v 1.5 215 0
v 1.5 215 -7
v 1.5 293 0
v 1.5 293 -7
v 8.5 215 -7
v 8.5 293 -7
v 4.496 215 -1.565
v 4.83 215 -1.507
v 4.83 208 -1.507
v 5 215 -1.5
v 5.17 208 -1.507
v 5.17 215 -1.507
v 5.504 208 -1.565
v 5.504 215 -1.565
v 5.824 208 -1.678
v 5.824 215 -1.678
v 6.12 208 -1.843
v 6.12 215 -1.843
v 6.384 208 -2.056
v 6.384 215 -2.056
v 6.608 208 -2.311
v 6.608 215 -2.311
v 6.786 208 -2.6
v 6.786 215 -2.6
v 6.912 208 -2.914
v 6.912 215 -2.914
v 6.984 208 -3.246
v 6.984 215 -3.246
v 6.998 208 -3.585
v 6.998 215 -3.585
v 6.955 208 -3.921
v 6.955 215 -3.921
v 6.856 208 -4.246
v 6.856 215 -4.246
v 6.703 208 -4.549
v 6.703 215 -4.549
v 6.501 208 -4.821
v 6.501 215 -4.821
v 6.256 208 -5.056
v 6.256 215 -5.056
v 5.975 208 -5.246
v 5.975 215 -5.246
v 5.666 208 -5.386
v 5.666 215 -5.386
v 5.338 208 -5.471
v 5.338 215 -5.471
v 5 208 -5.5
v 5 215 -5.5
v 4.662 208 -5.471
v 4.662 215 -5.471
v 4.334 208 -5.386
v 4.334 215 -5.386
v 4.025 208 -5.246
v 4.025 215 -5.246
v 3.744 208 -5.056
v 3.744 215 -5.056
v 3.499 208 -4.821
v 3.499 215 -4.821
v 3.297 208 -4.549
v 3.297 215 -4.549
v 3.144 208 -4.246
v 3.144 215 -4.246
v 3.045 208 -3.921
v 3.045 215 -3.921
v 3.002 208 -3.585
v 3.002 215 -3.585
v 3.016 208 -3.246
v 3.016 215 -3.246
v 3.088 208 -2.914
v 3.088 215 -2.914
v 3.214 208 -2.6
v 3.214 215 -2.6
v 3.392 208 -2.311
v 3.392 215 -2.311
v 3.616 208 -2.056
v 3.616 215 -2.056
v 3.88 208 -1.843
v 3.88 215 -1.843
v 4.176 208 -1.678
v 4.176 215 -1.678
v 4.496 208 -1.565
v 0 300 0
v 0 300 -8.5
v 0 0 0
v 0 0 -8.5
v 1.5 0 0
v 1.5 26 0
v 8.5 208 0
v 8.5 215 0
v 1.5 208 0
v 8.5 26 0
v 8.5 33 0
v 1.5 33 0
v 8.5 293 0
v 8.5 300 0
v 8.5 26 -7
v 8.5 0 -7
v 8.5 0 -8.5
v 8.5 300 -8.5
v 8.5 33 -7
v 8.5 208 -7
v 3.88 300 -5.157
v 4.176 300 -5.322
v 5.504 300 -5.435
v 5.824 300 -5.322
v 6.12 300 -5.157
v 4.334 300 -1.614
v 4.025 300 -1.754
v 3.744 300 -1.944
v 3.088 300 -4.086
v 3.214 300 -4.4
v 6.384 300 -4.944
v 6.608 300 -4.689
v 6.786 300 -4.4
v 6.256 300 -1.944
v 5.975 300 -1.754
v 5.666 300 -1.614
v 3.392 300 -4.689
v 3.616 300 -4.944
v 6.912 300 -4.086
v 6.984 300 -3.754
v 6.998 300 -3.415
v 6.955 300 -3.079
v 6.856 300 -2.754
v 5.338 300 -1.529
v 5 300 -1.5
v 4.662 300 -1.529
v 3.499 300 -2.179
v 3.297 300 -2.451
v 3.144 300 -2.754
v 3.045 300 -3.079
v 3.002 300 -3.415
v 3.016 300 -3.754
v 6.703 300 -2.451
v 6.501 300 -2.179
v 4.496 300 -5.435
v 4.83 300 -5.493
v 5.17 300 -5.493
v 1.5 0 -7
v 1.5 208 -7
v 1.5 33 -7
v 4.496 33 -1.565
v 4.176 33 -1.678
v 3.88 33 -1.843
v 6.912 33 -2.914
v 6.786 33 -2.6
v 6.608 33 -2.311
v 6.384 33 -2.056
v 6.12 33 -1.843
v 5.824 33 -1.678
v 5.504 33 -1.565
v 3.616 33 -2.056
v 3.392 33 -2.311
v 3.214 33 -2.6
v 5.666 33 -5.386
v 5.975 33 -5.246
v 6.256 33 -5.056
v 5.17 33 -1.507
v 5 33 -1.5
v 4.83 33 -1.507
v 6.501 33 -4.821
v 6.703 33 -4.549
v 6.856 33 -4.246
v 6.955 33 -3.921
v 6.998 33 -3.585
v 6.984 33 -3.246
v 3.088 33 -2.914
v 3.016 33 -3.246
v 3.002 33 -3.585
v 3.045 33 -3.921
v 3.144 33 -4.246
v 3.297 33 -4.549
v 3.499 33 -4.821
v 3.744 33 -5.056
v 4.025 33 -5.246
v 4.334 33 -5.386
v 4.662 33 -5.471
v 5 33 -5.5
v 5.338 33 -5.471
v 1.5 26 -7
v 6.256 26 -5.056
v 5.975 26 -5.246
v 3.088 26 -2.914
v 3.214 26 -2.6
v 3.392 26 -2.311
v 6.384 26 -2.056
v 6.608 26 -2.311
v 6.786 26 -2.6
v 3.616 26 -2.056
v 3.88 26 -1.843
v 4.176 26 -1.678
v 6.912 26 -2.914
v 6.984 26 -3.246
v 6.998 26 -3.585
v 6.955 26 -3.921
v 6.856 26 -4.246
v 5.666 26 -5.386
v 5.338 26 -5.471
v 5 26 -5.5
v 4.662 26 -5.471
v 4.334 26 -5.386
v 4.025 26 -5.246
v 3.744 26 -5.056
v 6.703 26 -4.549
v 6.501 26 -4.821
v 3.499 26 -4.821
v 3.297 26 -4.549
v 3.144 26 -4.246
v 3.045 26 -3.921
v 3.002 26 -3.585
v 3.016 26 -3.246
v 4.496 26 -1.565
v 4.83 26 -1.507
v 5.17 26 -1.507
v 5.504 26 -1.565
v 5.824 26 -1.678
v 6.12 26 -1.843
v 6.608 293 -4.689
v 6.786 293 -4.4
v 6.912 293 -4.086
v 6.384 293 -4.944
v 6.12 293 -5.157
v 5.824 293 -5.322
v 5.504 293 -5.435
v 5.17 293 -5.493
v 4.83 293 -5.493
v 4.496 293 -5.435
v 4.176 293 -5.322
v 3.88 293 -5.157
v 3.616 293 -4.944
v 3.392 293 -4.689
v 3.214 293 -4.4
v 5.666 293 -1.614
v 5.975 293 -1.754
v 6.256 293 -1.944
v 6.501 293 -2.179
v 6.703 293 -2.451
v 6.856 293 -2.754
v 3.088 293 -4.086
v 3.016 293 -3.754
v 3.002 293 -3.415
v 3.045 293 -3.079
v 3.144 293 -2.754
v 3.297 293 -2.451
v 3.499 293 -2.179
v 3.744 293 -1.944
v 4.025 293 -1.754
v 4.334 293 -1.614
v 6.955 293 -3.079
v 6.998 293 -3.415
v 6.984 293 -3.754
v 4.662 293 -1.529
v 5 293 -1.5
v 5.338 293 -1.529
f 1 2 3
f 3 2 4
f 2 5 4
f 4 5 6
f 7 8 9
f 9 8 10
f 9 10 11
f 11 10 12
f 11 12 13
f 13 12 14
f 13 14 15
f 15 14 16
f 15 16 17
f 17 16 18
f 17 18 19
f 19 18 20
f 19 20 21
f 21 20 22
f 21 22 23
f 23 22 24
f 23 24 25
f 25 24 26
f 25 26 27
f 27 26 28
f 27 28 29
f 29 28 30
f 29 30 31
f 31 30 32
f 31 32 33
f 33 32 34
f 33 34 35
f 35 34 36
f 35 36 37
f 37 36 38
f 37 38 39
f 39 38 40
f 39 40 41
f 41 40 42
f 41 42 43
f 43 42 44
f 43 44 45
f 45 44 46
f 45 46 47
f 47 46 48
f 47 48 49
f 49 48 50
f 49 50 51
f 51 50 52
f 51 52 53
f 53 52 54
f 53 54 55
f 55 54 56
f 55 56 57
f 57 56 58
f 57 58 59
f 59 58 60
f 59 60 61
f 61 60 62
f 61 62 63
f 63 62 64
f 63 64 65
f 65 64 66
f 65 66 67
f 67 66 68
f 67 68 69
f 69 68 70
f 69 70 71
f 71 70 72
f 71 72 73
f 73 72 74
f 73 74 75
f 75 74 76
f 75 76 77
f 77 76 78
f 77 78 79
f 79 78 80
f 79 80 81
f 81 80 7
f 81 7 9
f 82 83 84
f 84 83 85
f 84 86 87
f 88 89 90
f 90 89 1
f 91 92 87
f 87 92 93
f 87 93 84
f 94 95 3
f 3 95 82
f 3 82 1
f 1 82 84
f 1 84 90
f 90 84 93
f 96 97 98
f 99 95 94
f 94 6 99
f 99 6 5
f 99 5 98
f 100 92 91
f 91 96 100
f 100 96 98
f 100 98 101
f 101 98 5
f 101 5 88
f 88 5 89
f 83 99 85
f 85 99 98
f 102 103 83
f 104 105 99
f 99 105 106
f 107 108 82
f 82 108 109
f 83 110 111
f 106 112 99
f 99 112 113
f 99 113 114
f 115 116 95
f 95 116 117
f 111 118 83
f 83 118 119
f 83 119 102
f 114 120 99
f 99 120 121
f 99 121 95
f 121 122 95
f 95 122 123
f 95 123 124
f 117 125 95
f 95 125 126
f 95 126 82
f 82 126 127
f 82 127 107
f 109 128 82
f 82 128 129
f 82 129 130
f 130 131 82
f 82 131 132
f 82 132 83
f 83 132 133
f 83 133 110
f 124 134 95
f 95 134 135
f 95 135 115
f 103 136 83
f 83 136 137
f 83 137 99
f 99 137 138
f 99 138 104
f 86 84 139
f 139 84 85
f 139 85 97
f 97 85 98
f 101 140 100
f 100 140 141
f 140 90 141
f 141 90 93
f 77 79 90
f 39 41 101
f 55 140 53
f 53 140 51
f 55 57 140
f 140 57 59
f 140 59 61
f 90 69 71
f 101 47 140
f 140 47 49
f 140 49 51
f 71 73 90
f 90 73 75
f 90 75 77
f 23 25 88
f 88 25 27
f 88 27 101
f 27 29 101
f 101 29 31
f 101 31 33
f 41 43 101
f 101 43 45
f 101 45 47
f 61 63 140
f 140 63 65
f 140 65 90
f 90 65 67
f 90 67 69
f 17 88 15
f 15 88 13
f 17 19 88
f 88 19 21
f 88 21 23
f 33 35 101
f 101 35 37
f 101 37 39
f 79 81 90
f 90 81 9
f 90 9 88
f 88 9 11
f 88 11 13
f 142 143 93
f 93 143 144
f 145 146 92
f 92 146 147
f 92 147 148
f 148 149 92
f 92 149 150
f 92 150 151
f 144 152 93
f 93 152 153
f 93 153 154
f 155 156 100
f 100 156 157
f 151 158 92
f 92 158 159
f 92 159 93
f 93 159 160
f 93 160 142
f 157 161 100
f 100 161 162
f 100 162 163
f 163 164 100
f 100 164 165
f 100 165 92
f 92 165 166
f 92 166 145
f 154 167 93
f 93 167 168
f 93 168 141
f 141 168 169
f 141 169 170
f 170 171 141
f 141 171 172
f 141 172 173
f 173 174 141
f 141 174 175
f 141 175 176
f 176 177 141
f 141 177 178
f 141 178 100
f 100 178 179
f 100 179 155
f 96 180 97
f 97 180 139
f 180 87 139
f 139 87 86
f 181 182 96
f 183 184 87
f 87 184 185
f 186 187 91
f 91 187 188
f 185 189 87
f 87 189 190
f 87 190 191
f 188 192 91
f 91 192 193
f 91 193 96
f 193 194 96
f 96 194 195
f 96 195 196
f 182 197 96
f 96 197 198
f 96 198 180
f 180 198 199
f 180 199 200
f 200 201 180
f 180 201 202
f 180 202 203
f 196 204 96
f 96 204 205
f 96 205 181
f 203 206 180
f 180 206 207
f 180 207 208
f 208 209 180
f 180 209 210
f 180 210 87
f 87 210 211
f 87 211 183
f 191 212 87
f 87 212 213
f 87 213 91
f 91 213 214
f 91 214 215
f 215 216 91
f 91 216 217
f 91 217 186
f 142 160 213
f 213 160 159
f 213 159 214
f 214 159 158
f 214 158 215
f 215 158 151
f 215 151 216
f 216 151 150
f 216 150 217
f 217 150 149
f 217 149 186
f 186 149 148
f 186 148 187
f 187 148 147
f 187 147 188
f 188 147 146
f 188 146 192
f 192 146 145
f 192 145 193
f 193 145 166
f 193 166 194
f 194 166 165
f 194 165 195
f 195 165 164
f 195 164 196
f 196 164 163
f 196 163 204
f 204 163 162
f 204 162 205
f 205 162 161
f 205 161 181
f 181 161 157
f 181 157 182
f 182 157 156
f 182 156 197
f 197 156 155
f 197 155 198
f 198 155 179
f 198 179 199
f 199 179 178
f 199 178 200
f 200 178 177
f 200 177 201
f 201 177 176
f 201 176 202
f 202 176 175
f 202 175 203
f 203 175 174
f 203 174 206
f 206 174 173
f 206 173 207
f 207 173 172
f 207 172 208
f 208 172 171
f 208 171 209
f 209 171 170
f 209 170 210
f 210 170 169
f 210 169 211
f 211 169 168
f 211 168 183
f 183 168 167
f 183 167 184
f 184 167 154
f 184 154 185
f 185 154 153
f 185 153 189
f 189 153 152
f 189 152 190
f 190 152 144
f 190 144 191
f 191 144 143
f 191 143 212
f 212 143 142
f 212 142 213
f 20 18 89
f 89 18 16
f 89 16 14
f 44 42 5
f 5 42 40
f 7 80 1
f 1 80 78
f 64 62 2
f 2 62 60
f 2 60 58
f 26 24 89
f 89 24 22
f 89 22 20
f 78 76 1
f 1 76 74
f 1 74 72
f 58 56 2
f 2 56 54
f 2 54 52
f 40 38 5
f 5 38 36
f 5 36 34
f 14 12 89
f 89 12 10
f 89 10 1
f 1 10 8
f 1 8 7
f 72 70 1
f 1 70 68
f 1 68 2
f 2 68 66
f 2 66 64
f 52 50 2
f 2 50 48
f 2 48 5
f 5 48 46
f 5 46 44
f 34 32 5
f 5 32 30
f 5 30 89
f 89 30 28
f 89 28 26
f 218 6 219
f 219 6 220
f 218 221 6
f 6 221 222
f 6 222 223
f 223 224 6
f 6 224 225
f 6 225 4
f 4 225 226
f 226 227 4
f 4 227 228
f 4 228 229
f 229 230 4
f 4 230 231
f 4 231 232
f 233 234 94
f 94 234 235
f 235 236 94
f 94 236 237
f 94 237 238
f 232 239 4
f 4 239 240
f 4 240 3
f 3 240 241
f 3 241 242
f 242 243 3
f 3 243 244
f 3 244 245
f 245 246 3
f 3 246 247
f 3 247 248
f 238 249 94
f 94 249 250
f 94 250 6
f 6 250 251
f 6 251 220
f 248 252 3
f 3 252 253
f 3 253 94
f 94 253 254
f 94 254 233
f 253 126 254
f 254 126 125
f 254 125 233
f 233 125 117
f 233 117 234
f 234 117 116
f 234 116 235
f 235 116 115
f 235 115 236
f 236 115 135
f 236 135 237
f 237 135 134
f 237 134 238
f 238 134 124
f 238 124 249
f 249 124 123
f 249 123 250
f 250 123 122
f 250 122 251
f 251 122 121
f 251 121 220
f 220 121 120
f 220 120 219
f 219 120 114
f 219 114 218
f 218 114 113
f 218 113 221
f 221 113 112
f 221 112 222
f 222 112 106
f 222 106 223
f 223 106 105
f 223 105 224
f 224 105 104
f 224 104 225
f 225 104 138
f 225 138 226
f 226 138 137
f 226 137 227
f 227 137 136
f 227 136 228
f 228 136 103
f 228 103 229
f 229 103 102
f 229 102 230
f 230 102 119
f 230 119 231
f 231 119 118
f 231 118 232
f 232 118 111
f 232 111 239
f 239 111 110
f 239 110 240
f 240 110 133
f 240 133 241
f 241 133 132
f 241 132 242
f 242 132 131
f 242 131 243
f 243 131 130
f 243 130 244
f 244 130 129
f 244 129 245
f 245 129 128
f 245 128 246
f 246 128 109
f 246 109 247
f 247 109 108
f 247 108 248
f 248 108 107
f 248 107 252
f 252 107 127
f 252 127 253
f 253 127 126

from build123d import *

# Parameters (mm, degrees)
SKETCH1_W           = 8.5
SKETCH1_H           = 8.5
BOSS_EXTRUDE1_DEPTH = 300
SKETCH2_W           = 7
SKETCH2_H           = 7
CUT_EXTRUDE2_DEPTH  = 175
SKETCH4_R           = 2
CUT_EXTRUDE4_DEPTH  = 10
SKETCH6_W           = 7
SKETCH6_H           = 7
CUT_EXTRUDE5_DEPTH  = 26
SKETCH7_R           = 2
CUT_EXTRUDE6_DEPTH  = 26
SKETCH8_W           = 7
SKETCH8_H           = 7
CUT_EXTRUDE7_DEPTH  = 85
BOSS_EXTRUDE2_START = -7
SKETCH9_W           = 7
SKETCH9_H           = 7
SKETCH9_R           = 2
BOSS_EXTRUDE2_DEPTH = 7


with BuildPart() as part:
    # Sketch1 → Boss-Extrude1 (new body)
    with BuildSketch(Plane(origin=(0, 0, 0), x_dir=(1, 0, 0), z_dir=(0, 1, 0))):
        with Locations((4.25, 4.25)):
            Rectangle(SKETCH1_W, SKETCH1_H)
    extrude(amount=BOSS_EXTRUDE1_DEPTH)

    # Sketch2 → Cut-Extrude2 (cut)
    with BuildSketch(Plane(origin=(0, 33, 0), x_dir=(-1, 0, 0), z_dir=(0, -1, 0))):
        with Locations((-5, 3.5)):
            Rectangle(SKETCH2_W, SKETCH2_H)
    extrude(amount=-CUT_EXTRUDE2_DEPTH, mode=Mode.SUBTRACT)

    # Sketch4 → Cut-Extrude4 (cut)
    with BuildSketch(Plane.XZ.offset(-208)):
        with Locations(Location((5, -3.5, 0), (0, 0, 270))):
            Circle(SKETCH4_R)
    extrude(amount=-CUT_EXTRUDE4_DEPTH, mode=Mode.SUBTRACT)

    # Sketch6 → Cut-Extrude5 (cut)
    with BuildSketch(Plane.XZ):
        with Locations((5, -3.5)):
            Rectangle(SKETCH6_W, SKETCH6_H)
    extrude(amount=-CUT_EXTRUDE5_DEPTH, mode=Mode.SUBTRACT)

    # Sketch7 → Cut-Extrude6 (cut)
    with BuildSketch(Plane.XZ.offset(-26)):
        with Locations(Location((5, -3.5, 0), (0, 0, 270))):
            Circle(SKETCH7_R)
    extrude(amount=-CUT_EXTRUDE6_DEPTH, mode=Mode.SUBTRACT)

    # Sketch8 → Cut-Extrude7 (cut)
    with BuildSketch(Plane(origin=(0, 300, 0), x_dir=(1, 0, 0), z_dir=(0, 1, 0))):
        with Locations((5, 3.5)):
            Rectangle(SKETCH8_W, SKETCH8_H)
    extrude(amount=-CUT_EXTRUDE7_DEPTH, mode=Mode.SUBTRACT)

    # Sketch9 → Boss-Extrude2 (add)
    with BuildSketch(Plane(origin=(0, 300, 0), x_dir=(1, 0, 0), z_dir=(0, 1, 0)).offset(BOSS_EXTRUDE2_START)):
        with Locations((5, 3.5)):
            Rectangle(SKETCH9_W, SKETCH9_H)
        with Locations(Location((5, 3.5, 0), (0, 0, 90))):
            Circle(SKETCH9_R, mode=Mode.SUBTRACT)
    extrude(amount=BOSS_EXTRUDE2_DEPTH)


solid = part.part
